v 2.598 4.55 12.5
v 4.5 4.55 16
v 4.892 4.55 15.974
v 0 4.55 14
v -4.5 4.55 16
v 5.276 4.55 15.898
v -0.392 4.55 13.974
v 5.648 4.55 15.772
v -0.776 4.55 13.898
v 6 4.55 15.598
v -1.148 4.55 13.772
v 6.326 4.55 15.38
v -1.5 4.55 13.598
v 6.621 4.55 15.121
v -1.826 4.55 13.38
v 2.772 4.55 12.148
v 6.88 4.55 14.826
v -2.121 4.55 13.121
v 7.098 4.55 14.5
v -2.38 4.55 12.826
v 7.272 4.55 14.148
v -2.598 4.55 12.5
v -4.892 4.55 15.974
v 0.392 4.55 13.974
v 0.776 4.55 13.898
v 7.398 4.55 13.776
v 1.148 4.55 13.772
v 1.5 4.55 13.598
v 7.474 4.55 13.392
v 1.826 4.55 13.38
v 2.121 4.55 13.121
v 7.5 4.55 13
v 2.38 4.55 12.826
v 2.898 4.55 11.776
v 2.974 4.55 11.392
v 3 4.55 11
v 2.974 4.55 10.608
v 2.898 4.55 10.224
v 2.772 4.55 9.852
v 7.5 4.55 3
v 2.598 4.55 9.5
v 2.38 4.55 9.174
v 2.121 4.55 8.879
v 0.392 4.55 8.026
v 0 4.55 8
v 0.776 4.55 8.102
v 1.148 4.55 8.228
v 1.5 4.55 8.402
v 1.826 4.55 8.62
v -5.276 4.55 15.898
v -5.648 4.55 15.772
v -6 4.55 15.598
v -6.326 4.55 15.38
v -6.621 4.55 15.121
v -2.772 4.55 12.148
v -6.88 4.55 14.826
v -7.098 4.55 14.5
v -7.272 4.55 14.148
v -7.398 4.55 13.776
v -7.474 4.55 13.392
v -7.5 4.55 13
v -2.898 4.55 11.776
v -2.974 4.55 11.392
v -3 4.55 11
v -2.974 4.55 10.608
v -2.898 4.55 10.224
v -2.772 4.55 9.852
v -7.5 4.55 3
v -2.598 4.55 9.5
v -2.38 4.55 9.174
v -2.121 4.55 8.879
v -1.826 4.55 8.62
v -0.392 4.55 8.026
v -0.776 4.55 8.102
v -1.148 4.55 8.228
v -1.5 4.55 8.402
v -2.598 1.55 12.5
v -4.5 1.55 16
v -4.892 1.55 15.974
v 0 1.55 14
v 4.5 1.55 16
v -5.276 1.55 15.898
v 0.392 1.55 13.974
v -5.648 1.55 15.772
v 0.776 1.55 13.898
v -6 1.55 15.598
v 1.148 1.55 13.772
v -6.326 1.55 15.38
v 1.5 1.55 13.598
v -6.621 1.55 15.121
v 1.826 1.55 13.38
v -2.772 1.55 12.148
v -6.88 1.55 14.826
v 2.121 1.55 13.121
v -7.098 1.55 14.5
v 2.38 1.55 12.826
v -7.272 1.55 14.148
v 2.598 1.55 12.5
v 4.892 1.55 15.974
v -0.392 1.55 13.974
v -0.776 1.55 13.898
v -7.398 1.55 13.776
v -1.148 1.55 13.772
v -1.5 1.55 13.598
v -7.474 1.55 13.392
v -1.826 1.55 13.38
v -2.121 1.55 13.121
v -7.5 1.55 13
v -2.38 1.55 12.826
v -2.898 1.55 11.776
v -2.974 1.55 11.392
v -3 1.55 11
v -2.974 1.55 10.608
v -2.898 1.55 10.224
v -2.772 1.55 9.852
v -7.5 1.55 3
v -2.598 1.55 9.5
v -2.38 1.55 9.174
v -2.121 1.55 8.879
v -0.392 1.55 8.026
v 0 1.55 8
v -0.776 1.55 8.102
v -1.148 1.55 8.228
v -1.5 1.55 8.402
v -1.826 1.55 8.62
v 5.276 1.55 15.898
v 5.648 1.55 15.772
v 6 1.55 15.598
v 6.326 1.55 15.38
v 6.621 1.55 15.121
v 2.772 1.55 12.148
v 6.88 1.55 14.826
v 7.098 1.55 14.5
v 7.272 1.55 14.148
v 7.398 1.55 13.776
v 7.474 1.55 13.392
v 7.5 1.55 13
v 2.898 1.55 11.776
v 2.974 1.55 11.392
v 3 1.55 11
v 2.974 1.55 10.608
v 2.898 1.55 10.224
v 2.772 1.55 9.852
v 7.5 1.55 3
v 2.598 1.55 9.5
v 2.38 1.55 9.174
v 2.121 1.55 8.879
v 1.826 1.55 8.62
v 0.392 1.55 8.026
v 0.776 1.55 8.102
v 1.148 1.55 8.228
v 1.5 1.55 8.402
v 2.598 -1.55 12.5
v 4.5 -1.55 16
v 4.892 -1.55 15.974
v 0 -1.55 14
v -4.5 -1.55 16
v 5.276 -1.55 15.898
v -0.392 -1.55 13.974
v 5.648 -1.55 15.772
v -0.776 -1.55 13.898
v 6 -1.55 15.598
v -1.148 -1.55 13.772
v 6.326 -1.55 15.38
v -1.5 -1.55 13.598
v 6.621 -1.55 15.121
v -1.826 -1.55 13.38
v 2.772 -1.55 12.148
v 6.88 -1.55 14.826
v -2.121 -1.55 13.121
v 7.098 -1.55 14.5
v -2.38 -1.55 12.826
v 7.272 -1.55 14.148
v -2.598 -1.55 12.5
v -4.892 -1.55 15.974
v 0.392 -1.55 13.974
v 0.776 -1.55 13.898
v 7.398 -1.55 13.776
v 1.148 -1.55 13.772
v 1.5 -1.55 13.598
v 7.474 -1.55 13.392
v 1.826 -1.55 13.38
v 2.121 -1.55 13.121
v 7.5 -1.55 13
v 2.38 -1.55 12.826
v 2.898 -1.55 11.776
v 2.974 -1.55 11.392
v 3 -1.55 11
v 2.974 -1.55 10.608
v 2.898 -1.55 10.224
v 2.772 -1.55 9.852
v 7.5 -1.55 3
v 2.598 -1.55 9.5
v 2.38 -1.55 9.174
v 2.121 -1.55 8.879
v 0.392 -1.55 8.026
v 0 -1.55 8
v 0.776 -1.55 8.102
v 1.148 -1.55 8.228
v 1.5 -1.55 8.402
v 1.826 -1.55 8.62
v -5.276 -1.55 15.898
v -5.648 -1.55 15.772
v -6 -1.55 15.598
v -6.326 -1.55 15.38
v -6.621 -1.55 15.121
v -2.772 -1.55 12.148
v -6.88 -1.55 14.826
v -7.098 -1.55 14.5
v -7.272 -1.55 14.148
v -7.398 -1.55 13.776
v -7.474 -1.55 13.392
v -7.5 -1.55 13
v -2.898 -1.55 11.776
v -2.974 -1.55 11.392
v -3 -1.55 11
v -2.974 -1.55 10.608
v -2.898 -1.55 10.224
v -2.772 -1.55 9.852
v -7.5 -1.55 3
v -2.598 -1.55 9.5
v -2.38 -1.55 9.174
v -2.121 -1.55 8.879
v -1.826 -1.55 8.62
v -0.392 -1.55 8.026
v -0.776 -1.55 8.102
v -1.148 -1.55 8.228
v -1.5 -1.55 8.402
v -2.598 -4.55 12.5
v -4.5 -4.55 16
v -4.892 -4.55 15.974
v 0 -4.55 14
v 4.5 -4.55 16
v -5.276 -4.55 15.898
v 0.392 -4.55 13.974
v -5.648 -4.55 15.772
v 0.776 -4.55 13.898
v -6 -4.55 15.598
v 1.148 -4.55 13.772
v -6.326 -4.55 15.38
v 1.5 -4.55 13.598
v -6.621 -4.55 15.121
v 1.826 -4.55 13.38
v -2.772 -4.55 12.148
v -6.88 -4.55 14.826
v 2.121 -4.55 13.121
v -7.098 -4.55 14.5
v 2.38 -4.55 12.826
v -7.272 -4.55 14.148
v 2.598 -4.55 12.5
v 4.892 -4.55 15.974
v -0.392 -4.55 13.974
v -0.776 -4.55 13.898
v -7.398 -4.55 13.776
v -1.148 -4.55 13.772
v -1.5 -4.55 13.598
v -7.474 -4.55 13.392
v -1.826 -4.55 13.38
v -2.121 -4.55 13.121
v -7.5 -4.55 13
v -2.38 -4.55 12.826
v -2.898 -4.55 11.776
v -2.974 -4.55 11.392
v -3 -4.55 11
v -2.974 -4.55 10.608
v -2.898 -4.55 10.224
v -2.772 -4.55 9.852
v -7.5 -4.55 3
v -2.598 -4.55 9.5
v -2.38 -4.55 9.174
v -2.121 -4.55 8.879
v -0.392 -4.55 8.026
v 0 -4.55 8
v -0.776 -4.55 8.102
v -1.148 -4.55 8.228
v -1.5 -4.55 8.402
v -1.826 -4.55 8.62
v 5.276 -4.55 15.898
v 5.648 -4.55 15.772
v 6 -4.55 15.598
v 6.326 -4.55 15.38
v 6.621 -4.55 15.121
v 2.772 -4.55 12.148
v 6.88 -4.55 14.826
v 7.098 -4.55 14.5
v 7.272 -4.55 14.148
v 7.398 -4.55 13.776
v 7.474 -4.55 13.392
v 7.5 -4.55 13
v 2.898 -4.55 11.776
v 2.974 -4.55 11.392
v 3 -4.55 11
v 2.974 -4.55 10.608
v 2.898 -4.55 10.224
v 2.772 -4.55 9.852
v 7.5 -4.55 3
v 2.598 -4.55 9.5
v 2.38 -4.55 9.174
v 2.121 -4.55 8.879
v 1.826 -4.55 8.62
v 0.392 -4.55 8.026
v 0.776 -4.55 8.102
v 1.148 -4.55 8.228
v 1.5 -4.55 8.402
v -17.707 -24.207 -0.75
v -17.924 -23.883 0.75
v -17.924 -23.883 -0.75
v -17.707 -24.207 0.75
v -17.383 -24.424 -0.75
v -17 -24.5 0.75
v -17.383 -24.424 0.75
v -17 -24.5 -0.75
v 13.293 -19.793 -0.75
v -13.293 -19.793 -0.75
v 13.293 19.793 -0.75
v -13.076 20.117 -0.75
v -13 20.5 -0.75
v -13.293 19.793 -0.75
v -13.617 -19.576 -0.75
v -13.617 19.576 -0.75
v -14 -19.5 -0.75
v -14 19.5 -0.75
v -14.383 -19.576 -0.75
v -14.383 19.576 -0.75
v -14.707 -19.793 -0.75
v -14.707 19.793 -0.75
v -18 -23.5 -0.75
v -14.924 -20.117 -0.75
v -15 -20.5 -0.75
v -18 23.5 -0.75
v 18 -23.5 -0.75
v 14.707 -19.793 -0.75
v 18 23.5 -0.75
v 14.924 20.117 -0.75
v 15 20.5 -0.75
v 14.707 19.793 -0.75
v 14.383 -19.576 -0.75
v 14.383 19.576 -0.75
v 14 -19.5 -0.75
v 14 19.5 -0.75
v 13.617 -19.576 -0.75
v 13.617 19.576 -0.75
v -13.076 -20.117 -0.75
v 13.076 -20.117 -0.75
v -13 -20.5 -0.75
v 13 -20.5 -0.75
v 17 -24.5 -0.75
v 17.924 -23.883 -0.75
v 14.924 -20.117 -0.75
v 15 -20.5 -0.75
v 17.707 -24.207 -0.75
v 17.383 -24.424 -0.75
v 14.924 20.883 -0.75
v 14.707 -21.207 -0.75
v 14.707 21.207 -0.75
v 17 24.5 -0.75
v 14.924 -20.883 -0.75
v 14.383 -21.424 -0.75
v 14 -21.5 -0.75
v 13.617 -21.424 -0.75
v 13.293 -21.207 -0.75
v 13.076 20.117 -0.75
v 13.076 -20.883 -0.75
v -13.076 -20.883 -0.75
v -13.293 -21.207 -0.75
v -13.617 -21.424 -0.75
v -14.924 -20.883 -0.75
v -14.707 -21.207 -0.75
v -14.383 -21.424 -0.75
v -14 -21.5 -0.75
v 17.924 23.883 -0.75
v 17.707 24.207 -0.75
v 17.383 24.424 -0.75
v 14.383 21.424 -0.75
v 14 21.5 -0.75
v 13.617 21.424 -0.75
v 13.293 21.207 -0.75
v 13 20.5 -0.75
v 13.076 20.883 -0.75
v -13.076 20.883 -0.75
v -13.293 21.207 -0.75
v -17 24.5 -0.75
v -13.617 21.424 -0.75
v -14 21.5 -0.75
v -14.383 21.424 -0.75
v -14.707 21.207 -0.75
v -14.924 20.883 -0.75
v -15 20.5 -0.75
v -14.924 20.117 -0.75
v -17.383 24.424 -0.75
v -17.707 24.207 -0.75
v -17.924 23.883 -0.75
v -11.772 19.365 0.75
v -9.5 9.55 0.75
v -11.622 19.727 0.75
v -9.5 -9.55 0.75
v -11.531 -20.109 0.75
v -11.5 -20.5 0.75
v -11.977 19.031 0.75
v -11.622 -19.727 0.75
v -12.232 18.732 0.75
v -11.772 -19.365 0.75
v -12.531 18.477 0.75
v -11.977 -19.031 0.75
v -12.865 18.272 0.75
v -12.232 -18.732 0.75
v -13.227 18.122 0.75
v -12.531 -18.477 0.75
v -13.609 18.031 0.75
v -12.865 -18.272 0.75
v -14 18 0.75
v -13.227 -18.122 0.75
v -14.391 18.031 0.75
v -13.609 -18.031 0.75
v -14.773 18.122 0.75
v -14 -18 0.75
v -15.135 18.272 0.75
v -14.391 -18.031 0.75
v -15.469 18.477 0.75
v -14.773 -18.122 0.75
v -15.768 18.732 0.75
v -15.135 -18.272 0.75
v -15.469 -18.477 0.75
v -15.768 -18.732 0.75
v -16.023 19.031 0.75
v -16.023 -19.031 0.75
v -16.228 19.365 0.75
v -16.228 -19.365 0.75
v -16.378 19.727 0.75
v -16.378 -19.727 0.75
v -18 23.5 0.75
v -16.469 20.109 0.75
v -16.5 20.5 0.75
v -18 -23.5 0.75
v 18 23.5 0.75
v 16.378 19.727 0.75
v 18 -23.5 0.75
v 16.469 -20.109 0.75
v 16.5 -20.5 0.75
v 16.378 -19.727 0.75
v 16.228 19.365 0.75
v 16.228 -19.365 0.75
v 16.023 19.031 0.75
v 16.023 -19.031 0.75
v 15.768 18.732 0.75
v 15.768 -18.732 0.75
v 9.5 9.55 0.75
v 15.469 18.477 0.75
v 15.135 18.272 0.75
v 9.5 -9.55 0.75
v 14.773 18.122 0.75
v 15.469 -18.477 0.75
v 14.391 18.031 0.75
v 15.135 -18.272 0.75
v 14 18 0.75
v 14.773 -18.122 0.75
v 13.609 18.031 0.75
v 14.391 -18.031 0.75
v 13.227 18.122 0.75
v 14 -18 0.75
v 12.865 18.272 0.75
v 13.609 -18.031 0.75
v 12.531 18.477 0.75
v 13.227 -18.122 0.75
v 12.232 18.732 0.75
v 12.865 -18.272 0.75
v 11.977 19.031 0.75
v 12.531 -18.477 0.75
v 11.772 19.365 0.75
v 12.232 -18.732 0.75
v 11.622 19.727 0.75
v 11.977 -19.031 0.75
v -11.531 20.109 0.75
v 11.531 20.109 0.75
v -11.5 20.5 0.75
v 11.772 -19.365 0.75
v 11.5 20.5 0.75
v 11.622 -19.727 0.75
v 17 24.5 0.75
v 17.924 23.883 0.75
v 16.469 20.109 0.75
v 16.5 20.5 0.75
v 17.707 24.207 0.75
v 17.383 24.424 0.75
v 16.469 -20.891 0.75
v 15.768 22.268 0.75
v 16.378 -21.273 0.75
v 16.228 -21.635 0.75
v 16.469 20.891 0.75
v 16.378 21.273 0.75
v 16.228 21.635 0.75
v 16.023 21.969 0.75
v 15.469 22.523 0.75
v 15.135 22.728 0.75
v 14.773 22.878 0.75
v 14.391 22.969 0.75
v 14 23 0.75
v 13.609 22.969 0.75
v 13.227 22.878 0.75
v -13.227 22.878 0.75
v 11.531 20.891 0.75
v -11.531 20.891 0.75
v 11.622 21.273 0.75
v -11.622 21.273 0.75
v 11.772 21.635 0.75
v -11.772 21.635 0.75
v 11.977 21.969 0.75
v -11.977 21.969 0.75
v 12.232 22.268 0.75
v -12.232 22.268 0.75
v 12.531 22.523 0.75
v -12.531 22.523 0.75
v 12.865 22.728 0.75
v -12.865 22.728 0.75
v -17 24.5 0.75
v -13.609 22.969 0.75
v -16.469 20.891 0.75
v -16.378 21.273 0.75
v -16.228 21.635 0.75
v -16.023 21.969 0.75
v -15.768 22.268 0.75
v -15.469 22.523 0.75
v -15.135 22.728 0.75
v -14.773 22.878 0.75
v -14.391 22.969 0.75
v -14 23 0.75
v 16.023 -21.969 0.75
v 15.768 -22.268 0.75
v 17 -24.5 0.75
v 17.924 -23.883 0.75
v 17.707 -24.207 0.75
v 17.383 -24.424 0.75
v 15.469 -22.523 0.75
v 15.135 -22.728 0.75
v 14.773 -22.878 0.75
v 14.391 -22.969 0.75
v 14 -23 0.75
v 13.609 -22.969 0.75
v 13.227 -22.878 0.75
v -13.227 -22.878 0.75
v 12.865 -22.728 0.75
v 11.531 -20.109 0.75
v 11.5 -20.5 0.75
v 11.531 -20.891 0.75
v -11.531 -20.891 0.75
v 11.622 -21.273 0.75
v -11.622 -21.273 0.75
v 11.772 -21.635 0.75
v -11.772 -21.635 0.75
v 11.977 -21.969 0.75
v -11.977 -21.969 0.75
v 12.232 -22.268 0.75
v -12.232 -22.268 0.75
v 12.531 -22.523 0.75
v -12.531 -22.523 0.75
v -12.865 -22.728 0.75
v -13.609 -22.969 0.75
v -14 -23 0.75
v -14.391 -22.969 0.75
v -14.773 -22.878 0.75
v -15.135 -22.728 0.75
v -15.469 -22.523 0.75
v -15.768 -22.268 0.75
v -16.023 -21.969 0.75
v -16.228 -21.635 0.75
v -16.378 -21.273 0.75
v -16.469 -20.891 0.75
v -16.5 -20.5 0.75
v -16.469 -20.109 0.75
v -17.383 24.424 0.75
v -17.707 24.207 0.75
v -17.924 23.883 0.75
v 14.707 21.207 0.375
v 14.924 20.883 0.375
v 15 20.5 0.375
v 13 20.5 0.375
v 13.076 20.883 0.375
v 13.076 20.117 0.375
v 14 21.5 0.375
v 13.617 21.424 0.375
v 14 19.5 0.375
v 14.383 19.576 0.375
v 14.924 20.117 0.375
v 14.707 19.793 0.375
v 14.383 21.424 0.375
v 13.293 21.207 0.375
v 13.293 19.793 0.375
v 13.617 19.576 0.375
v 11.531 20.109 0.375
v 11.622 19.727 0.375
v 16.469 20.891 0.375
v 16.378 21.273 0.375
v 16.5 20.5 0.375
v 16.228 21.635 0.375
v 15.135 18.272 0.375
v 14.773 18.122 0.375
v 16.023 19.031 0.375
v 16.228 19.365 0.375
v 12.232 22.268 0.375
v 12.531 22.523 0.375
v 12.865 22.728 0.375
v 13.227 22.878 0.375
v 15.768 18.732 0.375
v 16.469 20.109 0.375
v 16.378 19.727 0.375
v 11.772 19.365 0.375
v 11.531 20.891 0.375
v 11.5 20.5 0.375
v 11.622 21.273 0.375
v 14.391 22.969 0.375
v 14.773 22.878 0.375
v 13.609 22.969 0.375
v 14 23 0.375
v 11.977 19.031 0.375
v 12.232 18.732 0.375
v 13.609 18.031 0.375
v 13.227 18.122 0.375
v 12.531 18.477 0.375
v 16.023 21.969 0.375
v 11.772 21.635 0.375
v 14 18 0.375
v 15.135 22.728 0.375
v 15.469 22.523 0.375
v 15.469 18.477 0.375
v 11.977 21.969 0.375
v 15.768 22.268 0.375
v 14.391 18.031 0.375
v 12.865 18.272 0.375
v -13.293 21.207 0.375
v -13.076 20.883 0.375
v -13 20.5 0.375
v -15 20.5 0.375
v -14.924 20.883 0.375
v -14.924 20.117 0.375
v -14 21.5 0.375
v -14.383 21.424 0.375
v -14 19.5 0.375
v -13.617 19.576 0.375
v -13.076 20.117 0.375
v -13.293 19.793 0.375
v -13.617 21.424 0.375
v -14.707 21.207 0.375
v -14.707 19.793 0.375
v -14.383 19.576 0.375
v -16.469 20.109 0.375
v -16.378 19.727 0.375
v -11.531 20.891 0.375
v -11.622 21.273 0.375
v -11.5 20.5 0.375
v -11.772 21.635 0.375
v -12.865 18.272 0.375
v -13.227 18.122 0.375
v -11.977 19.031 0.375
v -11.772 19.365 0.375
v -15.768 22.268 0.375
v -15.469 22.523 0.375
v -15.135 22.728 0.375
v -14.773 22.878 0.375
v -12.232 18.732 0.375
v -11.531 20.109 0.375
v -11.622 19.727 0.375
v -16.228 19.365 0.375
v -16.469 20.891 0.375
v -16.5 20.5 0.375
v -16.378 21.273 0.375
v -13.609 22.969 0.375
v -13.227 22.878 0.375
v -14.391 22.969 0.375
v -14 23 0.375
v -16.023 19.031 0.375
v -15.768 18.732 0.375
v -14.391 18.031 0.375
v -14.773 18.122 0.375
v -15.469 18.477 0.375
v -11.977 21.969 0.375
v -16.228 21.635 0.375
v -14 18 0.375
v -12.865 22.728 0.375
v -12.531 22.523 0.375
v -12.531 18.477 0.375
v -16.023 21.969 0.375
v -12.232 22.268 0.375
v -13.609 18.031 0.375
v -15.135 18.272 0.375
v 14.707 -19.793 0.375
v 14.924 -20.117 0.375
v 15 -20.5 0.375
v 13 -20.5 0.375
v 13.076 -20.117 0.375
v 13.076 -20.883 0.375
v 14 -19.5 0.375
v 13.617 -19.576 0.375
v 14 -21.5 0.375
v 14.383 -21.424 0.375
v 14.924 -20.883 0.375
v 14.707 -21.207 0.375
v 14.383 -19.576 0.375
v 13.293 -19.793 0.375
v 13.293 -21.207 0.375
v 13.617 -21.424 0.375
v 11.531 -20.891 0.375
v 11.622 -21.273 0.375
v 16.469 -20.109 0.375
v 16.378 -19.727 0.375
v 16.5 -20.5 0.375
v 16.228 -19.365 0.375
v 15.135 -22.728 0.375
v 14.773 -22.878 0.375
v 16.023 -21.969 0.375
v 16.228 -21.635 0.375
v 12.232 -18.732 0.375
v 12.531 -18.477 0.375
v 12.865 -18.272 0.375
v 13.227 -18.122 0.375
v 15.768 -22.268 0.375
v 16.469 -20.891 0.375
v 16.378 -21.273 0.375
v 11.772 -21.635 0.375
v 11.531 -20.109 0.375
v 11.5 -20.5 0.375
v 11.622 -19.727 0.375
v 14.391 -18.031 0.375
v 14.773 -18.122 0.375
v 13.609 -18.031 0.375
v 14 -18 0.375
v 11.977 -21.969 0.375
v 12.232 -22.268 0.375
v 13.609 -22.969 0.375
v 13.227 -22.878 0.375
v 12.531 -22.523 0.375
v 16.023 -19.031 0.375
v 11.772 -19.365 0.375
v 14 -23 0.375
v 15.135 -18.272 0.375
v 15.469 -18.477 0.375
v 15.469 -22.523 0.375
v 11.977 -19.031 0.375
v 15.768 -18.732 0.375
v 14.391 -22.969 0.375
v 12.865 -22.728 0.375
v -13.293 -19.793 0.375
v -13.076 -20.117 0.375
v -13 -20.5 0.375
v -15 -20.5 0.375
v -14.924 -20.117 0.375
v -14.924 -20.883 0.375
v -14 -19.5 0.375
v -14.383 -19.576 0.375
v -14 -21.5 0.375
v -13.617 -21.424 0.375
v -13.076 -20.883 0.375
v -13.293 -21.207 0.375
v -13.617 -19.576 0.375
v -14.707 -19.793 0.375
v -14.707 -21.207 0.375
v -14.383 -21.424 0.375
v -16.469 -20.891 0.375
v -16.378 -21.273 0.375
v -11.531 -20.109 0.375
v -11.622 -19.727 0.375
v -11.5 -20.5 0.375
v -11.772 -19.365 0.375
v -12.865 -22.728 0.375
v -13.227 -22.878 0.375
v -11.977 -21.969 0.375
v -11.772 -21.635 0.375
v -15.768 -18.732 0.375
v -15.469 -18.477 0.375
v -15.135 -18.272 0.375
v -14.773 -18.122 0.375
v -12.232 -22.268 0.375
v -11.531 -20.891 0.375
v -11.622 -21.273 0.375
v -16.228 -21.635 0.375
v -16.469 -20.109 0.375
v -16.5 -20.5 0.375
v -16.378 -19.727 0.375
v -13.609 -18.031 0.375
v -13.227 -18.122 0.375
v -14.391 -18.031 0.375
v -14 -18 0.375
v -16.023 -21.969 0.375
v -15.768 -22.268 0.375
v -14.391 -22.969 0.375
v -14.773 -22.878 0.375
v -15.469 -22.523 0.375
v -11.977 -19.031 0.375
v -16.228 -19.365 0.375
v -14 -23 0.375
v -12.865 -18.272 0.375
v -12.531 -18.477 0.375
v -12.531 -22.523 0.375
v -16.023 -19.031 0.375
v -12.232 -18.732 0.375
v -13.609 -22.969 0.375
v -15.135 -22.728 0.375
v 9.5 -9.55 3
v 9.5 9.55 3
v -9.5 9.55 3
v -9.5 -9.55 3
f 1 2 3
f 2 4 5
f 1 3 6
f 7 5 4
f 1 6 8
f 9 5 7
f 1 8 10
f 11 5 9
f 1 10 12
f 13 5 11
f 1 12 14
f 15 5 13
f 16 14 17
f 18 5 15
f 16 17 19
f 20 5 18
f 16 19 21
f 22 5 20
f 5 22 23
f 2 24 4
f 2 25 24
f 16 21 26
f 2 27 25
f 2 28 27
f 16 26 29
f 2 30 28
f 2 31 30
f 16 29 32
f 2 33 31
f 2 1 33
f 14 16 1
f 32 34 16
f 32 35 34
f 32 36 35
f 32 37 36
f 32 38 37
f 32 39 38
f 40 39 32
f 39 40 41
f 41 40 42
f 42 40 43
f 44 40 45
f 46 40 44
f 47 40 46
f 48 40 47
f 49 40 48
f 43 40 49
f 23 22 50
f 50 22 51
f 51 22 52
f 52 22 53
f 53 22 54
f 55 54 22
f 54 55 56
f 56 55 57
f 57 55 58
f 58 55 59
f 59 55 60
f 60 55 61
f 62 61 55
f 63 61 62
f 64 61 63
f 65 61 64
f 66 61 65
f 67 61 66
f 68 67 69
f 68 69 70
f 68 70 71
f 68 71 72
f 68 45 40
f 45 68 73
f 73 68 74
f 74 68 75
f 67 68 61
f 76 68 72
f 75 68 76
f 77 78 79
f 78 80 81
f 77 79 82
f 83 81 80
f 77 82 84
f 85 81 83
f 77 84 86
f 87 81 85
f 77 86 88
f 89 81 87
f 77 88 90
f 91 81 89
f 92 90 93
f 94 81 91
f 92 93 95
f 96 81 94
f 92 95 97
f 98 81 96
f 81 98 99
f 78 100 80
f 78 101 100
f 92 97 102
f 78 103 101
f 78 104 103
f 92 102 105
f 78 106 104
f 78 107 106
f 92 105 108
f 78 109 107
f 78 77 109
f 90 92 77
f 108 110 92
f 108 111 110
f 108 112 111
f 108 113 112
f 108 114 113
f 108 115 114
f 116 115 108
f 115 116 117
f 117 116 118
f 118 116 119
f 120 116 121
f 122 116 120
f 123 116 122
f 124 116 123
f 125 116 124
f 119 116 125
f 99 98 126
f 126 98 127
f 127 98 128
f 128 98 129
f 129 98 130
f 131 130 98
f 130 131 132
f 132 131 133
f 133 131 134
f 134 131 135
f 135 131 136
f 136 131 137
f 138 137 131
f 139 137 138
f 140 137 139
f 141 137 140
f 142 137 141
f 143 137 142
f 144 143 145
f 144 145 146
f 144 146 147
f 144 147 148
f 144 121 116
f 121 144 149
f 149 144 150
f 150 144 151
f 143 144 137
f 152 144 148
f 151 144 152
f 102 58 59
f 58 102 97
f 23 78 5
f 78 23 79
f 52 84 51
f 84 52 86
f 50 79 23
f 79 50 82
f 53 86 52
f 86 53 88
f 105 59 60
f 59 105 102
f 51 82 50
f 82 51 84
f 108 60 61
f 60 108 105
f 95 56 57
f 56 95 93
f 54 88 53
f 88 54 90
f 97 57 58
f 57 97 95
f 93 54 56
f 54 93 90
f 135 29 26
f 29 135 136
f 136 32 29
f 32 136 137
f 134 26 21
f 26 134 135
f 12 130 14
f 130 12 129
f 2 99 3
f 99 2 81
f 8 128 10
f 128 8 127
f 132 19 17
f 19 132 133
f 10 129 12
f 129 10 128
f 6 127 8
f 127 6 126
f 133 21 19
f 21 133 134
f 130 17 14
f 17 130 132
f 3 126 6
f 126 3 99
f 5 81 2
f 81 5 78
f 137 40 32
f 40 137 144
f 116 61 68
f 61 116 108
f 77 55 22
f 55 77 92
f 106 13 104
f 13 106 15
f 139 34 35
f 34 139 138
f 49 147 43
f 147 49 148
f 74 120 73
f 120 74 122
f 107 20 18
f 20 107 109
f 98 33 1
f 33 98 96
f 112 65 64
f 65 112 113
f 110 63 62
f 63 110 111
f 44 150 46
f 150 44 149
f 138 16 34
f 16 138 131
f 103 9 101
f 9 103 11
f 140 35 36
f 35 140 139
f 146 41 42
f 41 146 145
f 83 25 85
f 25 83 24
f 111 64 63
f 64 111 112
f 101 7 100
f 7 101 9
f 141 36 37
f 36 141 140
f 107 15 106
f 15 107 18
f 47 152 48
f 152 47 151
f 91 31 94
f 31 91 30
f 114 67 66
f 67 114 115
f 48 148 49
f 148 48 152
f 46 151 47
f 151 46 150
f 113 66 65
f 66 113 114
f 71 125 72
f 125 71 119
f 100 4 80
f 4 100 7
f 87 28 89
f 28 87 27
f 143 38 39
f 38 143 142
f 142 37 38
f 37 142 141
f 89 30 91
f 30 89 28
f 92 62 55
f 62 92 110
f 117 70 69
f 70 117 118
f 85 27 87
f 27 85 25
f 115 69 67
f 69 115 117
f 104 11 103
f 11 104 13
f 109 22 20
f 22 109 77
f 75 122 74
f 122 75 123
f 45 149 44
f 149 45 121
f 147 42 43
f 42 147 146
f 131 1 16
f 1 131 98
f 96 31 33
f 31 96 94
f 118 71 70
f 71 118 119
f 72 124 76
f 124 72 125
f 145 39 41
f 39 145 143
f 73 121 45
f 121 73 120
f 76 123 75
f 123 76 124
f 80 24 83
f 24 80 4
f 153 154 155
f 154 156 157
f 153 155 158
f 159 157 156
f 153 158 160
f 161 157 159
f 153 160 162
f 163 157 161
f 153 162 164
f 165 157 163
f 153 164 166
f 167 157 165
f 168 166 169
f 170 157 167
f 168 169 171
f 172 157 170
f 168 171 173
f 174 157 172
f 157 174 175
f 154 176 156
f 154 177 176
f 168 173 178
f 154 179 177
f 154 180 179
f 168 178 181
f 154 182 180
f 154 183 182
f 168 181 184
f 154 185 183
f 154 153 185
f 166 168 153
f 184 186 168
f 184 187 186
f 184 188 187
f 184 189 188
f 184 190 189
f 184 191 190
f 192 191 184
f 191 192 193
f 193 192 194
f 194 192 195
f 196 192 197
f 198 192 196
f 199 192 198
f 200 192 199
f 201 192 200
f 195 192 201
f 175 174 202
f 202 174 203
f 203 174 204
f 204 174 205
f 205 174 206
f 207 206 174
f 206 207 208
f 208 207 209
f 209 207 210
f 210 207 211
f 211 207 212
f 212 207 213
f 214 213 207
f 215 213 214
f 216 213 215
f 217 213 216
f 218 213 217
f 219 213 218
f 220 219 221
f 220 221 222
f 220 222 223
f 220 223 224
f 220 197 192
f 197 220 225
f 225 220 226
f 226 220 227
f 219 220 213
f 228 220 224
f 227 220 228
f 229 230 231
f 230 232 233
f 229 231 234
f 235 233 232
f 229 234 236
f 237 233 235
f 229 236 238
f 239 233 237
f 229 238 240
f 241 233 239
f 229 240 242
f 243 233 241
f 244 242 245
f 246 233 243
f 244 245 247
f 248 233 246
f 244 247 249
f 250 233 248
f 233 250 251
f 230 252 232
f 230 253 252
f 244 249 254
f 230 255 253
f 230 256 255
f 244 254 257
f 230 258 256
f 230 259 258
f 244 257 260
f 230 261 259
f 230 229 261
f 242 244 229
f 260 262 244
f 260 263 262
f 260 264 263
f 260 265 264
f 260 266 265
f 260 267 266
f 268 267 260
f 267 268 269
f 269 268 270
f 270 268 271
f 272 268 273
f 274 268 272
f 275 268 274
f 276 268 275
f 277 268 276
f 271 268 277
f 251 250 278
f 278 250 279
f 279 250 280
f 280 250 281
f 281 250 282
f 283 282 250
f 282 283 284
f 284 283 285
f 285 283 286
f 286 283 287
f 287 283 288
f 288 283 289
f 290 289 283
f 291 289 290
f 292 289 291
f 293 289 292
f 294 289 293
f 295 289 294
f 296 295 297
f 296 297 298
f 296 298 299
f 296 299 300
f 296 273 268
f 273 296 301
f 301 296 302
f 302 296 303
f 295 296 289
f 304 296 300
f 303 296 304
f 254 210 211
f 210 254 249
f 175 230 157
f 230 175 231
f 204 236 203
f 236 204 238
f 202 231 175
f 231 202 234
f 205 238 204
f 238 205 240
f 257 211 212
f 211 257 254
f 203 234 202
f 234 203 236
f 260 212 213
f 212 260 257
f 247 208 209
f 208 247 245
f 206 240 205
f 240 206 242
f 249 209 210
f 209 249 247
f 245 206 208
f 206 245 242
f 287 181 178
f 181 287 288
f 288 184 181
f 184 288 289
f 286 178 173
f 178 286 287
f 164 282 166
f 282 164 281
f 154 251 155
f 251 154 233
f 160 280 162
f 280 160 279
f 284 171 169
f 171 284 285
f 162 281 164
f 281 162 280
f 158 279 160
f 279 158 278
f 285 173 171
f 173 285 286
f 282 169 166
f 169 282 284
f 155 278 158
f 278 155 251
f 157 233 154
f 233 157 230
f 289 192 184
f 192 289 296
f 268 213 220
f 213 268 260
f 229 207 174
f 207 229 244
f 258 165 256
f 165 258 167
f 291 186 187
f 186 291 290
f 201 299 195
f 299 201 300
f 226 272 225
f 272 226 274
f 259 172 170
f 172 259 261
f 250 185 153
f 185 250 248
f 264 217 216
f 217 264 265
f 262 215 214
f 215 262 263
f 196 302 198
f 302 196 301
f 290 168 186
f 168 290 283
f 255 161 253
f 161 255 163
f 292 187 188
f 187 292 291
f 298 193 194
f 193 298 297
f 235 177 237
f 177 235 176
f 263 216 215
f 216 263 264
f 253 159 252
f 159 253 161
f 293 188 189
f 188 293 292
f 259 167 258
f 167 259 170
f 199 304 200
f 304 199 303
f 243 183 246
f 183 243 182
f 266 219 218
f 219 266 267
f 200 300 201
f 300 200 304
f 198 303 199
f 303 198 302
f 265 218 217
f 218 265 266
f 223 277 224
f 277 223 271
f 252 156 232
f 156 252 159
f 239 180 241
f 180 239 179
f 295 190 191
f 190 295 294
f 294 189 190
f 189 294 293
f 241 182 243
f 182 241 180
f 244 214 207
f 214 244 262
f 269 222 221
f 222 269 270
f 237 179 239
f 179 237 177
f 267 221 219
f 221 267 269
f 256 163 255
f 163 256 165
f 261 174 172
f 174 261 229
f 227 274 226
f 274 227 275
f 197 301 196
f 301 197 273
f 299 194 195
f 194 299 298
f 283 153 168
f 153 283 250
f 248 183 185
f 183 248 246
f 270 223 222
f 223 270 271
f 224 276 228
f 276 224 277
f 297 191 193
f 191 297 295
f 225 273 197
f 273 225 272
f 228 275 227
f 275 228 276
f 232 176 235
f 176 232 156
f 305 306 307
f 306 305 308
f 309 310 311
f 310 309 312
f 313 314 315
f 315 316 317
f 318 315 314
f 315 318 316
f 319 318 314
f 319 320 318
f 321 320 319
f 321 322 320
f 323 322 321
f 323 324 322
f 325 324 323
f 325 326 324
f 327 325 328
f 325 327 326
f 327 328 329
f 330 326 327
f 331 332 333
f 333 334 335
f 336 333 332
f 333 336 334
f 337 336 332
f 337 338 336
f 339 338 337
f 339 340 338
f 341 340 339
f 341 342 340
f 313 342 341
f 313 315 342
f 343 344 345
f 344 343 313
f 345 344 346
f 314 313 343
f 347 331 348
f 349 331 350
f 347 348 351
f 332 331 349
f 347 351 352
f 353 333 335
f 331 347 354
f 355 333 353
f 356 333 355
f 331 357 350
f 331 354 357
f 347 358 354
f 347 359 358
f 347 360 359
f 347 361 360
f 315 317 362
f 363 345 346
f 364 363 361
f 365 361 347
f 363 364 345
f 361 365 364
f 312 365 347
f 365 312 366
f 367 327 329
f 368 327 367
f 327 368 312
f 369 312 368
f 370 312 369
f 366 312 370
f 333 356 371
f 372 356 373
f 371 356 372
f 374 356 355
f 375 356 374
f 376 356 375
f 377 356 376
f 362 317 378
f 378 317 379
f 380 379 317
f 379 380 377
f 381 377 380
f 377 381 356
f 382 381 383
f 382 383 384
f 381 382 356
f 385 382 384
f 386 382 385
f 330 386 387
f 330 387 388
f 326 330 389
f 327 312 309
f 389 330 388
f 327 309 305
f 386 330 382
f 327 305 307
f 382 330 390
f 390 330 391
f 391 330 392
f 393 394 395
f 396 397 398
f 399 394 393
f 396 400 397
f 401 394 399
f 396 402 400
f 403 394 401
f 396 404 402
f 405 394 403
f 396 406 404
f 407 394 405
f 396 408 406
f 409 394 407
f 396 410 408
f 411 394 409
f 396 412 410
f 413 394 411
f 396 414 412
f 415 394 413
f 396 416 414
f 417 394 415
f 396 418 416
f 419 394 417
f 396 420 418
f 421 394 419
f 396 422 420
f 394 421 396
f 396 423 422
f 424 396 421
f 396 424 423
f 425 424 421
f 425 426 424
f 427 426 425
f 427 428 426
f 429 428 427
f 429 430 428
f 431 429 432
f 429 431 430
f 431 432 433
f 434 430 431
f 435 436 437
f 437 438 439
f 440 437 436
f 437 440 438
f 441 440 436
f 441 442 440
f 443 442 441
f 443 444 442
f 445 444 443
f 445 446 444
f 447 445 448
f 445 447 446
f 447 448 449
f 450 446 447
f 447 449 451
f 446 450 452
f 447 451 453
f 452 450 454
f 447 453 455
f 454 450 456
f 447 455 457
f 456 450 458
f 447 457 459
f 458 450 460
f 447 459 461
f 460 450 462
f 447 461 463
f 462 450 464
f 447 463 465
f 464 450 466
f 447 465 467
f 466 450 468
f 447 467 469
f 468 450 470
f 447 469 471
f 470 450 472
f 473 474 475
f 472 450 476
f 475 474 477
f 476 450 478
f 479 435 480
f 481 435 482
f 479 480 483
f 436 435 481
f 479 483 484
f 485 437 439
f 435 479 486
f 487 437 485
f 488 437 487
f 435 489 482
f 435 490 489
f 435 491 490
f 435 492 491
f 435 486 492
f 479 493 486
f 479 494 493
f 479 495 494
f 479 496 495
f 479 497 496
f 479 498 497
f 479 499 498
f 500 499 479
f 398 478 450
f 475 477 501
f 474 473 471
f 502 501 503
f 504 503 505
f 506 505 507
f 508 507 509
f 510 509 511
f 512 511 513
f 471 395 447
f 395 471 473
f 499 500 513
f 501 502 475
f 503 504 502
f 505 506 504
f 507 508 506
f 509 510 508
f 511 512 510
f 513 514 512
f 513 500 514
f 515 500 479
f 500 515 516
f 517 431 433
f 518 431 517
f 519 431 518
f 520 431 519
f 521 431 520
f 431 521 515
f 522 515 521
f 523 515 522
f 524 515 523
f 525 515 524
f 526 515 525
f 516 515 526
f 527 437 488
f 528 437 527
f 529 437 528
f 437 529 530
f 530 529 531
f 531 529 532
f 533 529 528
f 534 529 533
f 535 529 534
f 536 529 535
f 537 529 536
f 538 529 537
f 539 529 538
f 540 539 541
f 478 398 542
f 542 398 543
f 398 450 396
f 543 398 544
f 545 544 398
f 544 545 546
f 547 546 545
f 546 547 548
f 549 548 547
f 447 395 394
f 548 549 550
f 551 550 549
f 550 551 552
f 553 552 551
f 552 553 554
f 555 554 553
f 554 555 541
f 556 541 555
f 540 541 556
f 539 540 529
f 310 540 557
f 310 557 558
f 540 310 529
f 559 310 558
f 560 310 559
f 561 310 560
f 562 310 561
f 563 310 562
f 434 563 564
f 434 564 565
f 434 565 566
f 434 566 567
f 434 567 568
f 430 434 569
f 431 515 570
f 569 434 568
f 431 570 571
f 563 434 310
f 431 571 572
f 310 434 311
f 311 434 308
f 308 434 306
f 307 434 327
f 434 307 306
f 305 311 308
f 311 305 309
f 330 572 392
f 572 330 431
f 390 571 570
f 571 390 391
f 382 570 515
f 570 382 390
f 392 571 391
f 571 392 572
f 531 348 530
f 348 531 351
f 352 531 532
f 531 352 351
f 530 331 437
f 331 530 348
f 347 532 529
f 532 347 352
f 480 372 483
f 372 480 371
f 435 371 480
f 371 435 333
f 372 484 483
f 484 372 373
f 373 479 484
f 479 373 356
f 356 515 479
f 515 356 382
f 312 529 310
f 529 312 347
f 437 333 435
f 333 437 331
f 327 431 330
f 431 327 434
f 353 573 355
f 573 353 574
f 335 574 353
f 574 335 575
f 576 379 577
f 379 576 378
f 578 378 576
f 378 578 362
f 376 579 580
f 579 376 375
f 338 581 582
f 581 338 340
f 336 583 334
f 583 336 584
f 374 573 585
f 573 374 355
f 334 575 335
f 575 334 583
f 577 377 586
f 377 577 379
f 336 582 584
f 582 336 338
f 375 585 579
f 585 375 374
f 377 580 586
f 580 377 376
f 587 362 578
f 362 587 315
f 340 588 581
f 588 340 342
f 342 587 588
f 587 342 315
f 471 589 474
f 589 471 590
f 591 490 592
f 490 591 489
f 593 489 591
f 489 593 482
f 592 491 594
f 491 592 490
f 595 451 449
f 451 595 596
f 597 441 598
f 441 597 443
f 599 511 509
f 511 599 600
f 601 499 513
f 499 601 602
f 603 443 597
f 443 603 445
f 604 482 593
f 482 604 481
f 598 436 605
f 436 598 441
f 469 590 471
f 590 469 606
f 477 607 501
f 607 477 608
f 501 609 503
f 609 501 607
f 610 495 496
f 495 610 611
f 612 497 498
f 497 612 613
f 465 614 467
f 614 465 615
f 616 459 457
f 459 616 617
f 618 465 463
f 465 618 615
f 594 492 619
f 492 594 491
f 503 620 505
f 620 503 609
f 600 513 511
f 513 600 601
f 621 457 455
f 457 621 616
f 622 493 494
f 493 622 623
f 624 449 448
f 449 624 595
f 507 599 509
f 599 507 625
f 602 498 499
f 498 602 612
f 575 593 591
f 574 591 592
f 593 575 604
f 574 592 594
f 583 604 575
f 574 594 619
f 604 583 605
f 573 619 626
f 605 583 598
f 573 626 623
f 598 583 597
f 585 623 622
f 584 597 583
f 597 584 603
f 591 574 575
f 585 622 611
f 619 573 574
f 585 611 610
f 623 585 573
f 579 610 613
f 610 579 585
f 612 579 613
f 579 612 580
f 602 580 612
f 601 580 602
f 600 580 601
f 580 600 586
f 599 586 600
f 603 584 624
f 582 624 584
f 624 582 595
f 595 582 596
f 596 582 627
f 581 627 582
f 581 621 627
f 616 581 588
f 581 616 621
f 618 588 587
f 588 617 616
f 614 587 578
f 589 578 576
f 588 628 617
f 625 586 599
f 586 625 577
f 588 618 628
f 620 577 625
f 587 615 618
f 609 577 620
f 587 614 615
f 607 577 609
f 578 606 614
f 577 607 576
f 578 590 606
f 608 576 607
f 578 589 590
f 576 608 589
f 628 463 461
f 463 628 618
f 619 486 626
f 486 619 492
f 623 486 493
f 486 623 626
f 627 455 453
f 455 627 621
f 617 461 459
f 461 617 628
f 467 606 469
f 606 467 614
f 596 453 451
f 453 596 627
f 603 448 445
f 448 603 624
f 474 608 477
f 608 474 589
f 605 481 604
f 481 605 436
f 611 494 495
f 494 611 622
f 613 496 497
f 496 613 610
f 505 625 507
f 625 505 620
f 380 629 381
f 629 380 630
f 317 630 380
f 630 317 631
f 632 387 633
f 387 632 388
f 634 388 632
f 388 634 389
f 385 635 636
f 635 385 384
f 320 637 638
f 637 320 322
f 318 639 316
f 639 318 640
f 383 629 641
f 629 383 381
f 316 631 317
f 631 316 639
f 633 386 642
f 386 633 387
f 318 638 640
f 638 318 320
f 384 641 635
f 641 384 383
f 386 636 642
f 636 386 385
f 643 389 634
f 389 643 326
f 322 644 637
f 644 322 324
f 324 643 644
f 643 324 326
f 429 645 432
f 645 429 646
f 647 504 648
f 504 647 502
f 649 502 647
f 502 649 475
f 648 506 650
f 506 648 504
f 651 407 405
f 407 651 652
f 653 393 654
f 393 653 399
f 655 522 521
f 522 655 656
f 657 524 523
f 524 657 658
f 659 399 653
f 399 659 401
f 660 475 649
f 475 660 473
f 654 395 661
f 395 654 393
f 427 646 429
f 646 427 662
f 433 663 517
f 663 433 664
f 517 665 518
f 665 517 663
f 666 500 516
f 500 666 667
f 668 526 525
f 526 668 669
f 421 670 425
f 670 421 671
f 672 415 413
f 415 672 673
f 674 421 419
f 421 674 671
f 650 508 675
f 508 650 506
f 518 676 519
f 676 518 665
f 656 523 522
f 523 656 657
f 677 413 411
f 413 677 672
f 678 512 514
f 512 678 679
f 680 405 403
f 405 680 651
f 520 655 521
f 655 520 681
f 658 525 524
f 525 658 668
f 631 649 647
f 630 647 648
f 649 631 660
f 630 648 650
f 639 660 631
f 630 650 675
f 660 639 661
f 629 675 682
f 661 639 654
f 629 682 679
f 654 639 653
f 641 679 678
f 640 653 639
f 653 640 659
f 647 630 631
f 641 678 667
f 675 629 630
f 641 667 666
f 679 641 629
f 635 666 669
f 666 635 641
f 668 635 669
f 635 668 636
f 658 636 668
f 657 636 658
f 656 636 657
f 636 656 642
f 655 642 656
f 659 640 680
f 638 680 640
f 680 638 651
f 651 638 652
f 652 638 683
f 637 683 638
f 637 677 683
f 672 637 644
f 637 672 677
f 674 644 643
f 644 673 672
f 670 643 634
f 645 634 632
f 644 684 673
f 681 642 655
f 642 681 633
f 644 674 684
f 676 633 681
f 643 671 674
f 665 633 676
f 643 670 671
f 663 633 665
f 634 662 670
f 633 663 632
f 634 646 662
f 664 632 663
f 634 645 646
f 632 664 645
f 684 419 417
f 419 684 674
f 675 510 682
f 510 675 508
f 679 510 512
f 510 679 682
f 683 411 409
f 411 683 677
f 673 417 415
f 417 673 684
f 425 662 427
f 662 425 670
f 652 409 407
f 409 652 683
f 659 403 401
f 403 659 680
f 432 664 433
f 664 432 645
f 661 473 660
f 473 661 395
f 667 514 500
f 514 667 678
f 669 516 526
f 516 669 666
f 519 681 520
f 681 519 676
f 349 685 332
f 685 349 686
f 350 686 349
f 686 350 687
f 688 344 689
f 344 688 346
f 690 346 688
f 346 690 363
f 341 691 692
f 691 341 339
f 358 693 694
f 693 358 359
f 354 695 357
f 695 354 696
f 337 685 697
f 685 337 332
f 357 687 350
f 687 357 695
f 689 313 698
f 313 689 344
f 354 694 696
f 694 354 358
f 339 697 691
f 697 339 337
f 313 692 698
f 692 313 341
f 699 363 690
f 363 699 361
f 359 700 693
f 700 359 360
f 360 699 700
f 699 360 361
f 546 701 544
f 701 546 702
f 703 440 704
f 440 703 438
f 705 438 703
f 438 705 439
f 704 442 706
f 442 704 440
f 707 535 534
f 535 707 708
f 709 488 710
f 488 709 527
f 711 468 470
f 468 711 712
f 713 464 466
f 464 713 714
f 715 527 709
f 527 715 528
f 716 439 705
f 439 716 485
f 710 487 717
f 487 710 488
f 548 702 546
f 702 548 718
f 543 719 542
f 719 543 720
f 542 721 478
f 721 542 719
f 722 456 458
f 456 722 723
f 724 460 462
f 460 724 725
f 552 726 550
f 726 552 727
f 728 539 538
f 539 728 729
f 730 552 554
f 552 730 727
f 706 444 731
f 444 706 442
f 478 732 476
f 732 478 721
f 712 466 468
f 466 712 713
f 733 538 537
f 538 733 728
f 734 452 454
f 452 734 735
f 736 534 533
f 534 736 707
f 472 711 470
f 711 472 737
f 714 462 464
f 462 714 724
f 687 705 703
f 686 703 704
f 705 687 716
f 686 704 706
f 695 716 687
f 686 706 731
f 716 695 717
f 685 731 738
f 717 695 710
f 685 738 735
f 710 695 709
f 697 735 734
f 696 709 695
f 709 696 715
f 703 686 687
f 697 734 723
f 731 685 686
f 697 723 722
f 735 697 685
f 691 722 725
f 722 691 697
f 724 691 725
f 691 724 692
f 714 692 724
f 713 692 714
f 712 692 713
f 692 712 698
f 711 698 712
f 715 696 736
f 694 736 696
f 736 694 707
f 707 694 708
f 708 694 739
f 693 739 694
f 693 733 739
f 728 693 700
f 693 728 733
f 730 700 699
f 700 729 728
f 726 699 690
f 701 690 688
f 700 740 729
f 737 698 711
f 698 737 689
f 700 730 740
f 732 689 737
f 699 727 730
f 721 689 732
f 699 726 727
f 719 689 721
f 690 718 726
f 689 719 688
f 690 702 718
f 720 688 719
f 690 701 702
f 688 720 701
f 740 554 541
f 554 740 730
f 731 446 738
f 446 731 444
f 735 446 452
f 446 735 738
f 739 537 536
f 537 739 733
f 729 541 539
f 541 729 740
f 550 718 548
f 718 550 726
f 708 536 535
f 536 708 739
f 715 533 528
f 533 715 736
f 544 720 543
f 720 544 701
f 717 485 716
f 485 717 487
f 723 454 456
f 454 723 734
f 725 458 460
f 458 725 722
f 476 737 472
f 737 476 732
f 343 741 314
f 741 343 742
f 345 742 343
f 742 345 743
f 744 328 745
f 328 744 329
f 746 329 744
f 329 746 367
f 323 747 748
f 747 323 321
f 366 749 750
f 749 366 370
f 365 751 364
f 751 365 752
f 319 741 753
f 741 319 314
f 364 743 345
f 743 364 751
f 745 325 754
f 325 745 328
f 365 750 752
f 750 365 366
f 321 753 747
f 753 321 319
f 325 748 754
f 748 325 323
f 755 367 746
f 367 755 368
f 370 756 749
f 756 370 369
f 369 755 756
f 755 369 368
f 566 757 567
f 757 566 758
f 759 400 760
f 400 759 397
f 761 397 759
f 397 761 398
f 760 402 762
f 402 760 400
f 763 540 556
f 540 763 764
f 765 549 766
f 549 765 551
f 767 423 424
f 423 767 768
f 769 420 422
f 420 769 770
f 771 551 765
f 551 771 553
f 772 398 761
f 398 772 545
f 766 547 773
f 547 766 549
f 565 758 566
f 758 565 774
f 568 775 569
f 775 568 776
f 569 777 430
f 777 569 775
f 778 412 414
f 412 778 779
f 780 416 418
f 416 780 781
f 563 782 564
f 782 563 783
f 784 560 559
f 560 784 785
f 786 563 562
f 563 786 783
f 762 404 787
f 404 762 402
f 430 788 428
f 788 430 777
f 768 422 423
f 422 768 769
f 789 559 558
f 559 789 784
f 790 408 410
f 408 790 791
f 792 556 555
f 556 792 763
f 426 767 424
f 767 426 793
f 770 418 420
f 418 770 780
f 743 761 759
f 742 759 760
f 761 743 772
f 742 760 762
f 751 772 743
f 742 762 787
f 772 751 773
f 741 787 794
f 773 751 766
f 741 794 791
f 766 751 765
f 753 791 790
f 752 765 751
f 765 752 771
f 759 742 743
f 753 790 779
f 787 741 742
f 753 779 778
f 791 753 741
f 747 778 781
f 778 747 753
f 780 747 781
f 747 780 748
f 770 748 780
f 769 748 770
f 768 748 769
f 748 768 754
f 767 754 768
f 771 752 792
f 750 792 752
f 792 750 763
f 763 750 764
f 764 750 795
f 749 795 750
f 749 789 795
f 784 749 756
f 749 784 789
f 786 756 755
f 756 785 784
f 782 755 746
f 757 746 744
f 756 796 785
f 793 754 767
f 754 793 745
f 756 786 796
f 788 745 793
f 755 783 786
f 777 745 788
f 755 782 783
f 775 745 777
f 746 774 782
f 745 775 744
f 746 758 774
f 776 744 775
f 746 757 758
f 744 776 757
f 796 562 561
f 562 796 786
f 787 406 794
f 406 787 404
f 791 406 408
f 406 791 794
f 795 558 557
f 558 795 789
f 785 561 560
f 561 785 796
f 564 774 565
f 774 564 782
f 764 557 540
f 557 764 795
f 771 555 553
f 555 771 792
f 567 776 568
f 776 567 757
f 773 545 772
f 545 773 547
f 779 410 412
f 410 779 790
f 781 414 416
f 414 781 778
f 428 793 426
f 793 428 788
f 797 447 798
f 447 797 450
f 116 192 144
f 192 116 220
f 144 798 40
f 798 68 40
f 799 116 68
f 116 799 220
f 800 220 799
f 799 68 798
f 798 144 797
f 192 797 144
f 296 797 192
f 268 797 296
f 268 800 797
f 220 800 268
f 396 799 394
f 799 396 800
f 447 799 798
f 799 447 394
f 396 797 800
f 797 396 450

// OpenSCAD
// file: consts.scad
//    consts.scad
//    Constant values for OpenSCAD model 
//
//    Copyright (C) 2026 Clear Creek Scientific
//
//    This program is free software: you can redistribute it and/or modify
//    it under the terms of the GNU General Public License as published by
//    the Free Software Foundation, either version 3 of the License, or
//    (at your option) any later version.
//
//    This program is distributed in the hope that it will be useful,
//    but WITHOUT ANY WARRANTY; without even the implied warranty of
//    MERCHANTABILITY or FITNESS FOR A PARTICULAR PURPOSE.  See the
//    GNU General Public License for more details.
//
//    You should have received a copy of the GNU General Public License
//    along with this program.  If not, see <https://www.gnu.org/licenses/>.

WALL_WIDTH = 1.5;
TAB_WIDTH = 8;
HALF_TAB_WIDTH = 0.5 * TAB_WIDTH;
TAB_HOLE_RADIUS = 1;
TAB_CORNER_RADIUS=1;
DRAIN_HOLE_HEIGHT = 5.0;
DRAIN_HOLE_RADIUS = 2.0;
SCREW_HOLE_HEIGHT = 2.0 * WALL_WIDTH;
SCREW_HOLE_RADIUS = 1.0;
SCREW_HEAD_HEIGHT = 0.5*WALL_WIDTH;
SCREW_HEAD_RADIUS = 2.5;

BATTERY_INNER_X_DIM = 69.2;
BATTERY_INNER_Y_DIM = 19.0;
BATTERY_WALL_HEIGHT = BATTERY_INNER_Y_DIM + WALL_WIDTH + 5.0;
BATTERY_OUTER_X_DIM = BATTERY_INNER_X_DIM + 2*WALL_WIDTH;
BATTERY_OUTER_Y_DIM = BATTERY_INNER_Y_DIM + 2*WALL_WIDTH;
BATTERY_X_OFFSET = 10; 

PANEL_WALL_HEIGHT = 8;
PANEL_INNER_X_DIM = 138;
PANEL_INNER_Y_DIM = 114;
PANEL_OUTER_X_DIM = PANEL_INNER_X_DIM + 2*WALL_WIDTH;
PANEL_OUTER_Y_DIM = PANEL_INNER_Y_DIM + 2*WALL_WIDTH;
PANEL_CENTER_BOX_WIDTH = 30;

PANEL_CENTER_X_LEN = 52.5;
PANEL_CENTER_Y_LEN = 41.0;

MOUNT_INNER_X_DIM = 33.0;
MOUNT_INNER_Y_DIM = MOUNT_INNER_X_DIM;
MOUNT_WALL_HEIGHT = 36.0;
MOUNT_OUTER_X_DIM = MOUNT_INNER_X_DIM + 2*WALL_WIDTH;
MOUNT_OUTER_Y_DIM = MOUNT_INNER_Y_DIM + 2*WALL_WIDTH;

CHARGER_INNER_X_DIM = MOUNT_INNER_X_DIM;
CHARGER_INNER_Y_DIM = MOUNT_INNER_Y_DIM;
CHARGER_WALL_HEIGHT = 15.0;
CHARGER_OUTER_X_DIM = CHARGER_INNER_X_DIM + 2*WALL_WIDTH;
CHARGER_OUTER_Y_DIM = CHARGER_INNER_Y_DIM + 2*WALL_WIDTH;

HINGE_TAB_WIDTH = 15.0;
HINGE_TAB_DEPTH = 3.0;
HINGE_TAB_HEIGHT = 16.0;
HINGE_TAB_RADIUS = 3.0;

HINGE_HOLE_DEPTH = HINGE_TAB_DEPTH+0.2;
// Hinge hole needs to accept a 10/32 inch screw
HINGE_HOLE_DIAMETER = 6;
HINGE_HOLE_RADIUS = 0.5*HINGE_HOLE_DIAMETER;
HINGE_HOLE_OFFSET = HINGE_TAB_HEIGHT - (HINGE_HOLE_RADIUS+3);

HINGE_GAP = 3.1;
HINGE_SUPPORT_OVERHANG = 2.0;
// file: common.scad
//    battery_box.scad
//    OpenSCAD model for a box for a PKCELL 18650 lithium-ion battery 
//
//    Copyright (C) 2026 Clear Creek Scientific
//
//    This program is free software: you can redistribute it and/or modify
//    it under the terms of the GNU General Public License as published by
//    the Free Software Foundation, either version 3 of the License, or
//    (at your option) any later version.
//
//    This program is distributed in the hope that it will be useful,
//    but WITHOUT ANY WARRANTY; without even the implied warranty of
//    MERCHANTABILITY or FITNESS FOR A PARTICULAR PURPOSE.  See the
//    GNU General Public License for more details.
//
//    You should have received a copy of the GNU General Public License
//    along with this program.  If not, see <https://www.gnu.org/licenses/>.

include <consts.scad>
use <MCAD/boxes.scad>
use <MCAD/regular_shapes.scad>

module tab(height) {
    difference() {
        roundedBox(size=[TAB_WIDTH,TAB_WIDTH,height],radius=TAB_CORNER_RADIUS,sidesonly=true);
        translate([0,0,-height]) {
            cylinder(2*height,TAB_HOLE_RADIUS,TAB_HOLE_RADIUS);
        }
    }
}

module drain_hole() {
    //cylinder(h=DRAIN_HOLE_HEIGHT,r=DRAIN_HOLE_RADIUS,center=true);
    cube([DRAIN_HOLE_HEIGHT,DRAIN_HOLE_HEIGHT,DRAIN_HOLE_HEIGHT],center=true);
}

module screw_hole() {
    union() {
        cylinder(h=SCREW_HOLE_HEIGHT,r=SCREW_HOLE_RADIUS,center=true);
        translate([0,0,0.5*WALL_WIDTH]) {
            cylinder(h=SCREW_HEAD_HEIGHT,r=SCREW_HEAD_RADIUS,center=true);
        }
    }
}

module hinge_tab(hole_offset) {
    rotate([90,0,0]) {
        difference() {
            roundedBox(size=[HINGE_TAB_WIDTH,HINGE_TAB_HEIGHT,HINGE_TAB_DEPTH],radius=HINGE_TAB_RADIUS,sidesonly=true);
            translate([0,hole_offset,0]) {
                cylinder(h=HINGE_HOLE_DEPTH+0.2,r=HINGE_HOLE_RADIUS,center=true);
            }
        }
    }
}

BASE_X_DIM = MOUNT_OUTER_X_DIM;
BASE_Y_DIM = MOUNT_OUTER_Y_DIM+2*(TAB_WIDTH-WALL_WIDTH);

module mount_hinge_base() {
    union () {
        // main base 
        difference() {
            roundedBox(size=[BASE_X_DIM,BASE_Y_DIM,WALL_WIDTH],radius=TAB_CORNER_RADIUS,sidesonly=true);

            // cut out screw holes
            translate([0.5*(BASE_X_DIM-TAB_WIDTH),0.5*(BASE_Y_DIM-TAB_WIDTH),0]) {
                screw_hole();
            }
            translate([-0.5*(BASE_X_DIM-TAB_WIDTH),0.5*(BASE_Y_DIM-TAB_WIDTH),0]) {
                screw_hole();
            }
            translate([0.5*(BASE_X_DIM-TAB_WIDTH),-0.5*(BASE_Y_DIM-TAB_WIDTH),0]) {
                screw_hole();
            }
            translate([-0.5* (BASE_X_DIM-TAB_WIDTH),-0.5*(BASE_Y_DIM-TAB_WIDTH),0]) {
                screw_hole();
            }
        } // difference

        // support base for hinges
        translate([0,0,0.5*HINGE_TAB_DEPTH]) {
            cube([HINGE_TAB_WIDTH+2*HINGE_SUPPORT_OVERHANG,4*HINGE_TAB_DEPTH+HINGE_GAP+2*HINGE_SUPPORT_OVERHANG,HINGE_TAB_DEPTH],center=true);
        }
    }
}
// main file
// mount_hinge_inner.scad
//    OpenSCAD model for the solar panel mount hinge inner tabs
//
//    Copyright (C) 2026 Clear Creek Scientific
//
//    This program is free software: you can redistribute it and/or modify
//    it under the terms of the GNU General Public License as published by
//    the Free Software Foundation, either version 3 of the License, or
//    (at your option) any later version.
//
//    This program is distributed in the hope that it will be useful,
//    but WITHOUT ANY WARRANTY; without even the implied warranty of
//    MERCHANTABILITY or FITNESS FOR A PARTICULAR PURPOSE.  See the
//    GNU General Public License for more details.
//
//    You should have received a copy of the GNU General Public License
//    along with this program.  If not, see <https://www.gnu.org/licenses/>.

include <common.scad>

$fa=1;
$fs=0.4;

INNER_HOLE_OFFSET = 3;

module mount_inner_hinge_box() {
    union() {
        mount_hinge_base();

        // hinge 1
        translate([0,0.5*(HINGE_GAP+HINGE_TAB_DEPTH),0.5*HINGE_TAB_HEIGHT]) {
            hinge_tab(INNER_HOLE_OFFSET);
        }
        // hinge 2
        translate([0,-0.5*(HINGE_GAP+HINGE_TAB_DEPTH),0.5*HINGE_TAB_HEIGHT]) {
            hinge_tab(INNER_HOLE_OFFSET);
        }
       
    } // difference
}

mount_inner_hinge_box();
